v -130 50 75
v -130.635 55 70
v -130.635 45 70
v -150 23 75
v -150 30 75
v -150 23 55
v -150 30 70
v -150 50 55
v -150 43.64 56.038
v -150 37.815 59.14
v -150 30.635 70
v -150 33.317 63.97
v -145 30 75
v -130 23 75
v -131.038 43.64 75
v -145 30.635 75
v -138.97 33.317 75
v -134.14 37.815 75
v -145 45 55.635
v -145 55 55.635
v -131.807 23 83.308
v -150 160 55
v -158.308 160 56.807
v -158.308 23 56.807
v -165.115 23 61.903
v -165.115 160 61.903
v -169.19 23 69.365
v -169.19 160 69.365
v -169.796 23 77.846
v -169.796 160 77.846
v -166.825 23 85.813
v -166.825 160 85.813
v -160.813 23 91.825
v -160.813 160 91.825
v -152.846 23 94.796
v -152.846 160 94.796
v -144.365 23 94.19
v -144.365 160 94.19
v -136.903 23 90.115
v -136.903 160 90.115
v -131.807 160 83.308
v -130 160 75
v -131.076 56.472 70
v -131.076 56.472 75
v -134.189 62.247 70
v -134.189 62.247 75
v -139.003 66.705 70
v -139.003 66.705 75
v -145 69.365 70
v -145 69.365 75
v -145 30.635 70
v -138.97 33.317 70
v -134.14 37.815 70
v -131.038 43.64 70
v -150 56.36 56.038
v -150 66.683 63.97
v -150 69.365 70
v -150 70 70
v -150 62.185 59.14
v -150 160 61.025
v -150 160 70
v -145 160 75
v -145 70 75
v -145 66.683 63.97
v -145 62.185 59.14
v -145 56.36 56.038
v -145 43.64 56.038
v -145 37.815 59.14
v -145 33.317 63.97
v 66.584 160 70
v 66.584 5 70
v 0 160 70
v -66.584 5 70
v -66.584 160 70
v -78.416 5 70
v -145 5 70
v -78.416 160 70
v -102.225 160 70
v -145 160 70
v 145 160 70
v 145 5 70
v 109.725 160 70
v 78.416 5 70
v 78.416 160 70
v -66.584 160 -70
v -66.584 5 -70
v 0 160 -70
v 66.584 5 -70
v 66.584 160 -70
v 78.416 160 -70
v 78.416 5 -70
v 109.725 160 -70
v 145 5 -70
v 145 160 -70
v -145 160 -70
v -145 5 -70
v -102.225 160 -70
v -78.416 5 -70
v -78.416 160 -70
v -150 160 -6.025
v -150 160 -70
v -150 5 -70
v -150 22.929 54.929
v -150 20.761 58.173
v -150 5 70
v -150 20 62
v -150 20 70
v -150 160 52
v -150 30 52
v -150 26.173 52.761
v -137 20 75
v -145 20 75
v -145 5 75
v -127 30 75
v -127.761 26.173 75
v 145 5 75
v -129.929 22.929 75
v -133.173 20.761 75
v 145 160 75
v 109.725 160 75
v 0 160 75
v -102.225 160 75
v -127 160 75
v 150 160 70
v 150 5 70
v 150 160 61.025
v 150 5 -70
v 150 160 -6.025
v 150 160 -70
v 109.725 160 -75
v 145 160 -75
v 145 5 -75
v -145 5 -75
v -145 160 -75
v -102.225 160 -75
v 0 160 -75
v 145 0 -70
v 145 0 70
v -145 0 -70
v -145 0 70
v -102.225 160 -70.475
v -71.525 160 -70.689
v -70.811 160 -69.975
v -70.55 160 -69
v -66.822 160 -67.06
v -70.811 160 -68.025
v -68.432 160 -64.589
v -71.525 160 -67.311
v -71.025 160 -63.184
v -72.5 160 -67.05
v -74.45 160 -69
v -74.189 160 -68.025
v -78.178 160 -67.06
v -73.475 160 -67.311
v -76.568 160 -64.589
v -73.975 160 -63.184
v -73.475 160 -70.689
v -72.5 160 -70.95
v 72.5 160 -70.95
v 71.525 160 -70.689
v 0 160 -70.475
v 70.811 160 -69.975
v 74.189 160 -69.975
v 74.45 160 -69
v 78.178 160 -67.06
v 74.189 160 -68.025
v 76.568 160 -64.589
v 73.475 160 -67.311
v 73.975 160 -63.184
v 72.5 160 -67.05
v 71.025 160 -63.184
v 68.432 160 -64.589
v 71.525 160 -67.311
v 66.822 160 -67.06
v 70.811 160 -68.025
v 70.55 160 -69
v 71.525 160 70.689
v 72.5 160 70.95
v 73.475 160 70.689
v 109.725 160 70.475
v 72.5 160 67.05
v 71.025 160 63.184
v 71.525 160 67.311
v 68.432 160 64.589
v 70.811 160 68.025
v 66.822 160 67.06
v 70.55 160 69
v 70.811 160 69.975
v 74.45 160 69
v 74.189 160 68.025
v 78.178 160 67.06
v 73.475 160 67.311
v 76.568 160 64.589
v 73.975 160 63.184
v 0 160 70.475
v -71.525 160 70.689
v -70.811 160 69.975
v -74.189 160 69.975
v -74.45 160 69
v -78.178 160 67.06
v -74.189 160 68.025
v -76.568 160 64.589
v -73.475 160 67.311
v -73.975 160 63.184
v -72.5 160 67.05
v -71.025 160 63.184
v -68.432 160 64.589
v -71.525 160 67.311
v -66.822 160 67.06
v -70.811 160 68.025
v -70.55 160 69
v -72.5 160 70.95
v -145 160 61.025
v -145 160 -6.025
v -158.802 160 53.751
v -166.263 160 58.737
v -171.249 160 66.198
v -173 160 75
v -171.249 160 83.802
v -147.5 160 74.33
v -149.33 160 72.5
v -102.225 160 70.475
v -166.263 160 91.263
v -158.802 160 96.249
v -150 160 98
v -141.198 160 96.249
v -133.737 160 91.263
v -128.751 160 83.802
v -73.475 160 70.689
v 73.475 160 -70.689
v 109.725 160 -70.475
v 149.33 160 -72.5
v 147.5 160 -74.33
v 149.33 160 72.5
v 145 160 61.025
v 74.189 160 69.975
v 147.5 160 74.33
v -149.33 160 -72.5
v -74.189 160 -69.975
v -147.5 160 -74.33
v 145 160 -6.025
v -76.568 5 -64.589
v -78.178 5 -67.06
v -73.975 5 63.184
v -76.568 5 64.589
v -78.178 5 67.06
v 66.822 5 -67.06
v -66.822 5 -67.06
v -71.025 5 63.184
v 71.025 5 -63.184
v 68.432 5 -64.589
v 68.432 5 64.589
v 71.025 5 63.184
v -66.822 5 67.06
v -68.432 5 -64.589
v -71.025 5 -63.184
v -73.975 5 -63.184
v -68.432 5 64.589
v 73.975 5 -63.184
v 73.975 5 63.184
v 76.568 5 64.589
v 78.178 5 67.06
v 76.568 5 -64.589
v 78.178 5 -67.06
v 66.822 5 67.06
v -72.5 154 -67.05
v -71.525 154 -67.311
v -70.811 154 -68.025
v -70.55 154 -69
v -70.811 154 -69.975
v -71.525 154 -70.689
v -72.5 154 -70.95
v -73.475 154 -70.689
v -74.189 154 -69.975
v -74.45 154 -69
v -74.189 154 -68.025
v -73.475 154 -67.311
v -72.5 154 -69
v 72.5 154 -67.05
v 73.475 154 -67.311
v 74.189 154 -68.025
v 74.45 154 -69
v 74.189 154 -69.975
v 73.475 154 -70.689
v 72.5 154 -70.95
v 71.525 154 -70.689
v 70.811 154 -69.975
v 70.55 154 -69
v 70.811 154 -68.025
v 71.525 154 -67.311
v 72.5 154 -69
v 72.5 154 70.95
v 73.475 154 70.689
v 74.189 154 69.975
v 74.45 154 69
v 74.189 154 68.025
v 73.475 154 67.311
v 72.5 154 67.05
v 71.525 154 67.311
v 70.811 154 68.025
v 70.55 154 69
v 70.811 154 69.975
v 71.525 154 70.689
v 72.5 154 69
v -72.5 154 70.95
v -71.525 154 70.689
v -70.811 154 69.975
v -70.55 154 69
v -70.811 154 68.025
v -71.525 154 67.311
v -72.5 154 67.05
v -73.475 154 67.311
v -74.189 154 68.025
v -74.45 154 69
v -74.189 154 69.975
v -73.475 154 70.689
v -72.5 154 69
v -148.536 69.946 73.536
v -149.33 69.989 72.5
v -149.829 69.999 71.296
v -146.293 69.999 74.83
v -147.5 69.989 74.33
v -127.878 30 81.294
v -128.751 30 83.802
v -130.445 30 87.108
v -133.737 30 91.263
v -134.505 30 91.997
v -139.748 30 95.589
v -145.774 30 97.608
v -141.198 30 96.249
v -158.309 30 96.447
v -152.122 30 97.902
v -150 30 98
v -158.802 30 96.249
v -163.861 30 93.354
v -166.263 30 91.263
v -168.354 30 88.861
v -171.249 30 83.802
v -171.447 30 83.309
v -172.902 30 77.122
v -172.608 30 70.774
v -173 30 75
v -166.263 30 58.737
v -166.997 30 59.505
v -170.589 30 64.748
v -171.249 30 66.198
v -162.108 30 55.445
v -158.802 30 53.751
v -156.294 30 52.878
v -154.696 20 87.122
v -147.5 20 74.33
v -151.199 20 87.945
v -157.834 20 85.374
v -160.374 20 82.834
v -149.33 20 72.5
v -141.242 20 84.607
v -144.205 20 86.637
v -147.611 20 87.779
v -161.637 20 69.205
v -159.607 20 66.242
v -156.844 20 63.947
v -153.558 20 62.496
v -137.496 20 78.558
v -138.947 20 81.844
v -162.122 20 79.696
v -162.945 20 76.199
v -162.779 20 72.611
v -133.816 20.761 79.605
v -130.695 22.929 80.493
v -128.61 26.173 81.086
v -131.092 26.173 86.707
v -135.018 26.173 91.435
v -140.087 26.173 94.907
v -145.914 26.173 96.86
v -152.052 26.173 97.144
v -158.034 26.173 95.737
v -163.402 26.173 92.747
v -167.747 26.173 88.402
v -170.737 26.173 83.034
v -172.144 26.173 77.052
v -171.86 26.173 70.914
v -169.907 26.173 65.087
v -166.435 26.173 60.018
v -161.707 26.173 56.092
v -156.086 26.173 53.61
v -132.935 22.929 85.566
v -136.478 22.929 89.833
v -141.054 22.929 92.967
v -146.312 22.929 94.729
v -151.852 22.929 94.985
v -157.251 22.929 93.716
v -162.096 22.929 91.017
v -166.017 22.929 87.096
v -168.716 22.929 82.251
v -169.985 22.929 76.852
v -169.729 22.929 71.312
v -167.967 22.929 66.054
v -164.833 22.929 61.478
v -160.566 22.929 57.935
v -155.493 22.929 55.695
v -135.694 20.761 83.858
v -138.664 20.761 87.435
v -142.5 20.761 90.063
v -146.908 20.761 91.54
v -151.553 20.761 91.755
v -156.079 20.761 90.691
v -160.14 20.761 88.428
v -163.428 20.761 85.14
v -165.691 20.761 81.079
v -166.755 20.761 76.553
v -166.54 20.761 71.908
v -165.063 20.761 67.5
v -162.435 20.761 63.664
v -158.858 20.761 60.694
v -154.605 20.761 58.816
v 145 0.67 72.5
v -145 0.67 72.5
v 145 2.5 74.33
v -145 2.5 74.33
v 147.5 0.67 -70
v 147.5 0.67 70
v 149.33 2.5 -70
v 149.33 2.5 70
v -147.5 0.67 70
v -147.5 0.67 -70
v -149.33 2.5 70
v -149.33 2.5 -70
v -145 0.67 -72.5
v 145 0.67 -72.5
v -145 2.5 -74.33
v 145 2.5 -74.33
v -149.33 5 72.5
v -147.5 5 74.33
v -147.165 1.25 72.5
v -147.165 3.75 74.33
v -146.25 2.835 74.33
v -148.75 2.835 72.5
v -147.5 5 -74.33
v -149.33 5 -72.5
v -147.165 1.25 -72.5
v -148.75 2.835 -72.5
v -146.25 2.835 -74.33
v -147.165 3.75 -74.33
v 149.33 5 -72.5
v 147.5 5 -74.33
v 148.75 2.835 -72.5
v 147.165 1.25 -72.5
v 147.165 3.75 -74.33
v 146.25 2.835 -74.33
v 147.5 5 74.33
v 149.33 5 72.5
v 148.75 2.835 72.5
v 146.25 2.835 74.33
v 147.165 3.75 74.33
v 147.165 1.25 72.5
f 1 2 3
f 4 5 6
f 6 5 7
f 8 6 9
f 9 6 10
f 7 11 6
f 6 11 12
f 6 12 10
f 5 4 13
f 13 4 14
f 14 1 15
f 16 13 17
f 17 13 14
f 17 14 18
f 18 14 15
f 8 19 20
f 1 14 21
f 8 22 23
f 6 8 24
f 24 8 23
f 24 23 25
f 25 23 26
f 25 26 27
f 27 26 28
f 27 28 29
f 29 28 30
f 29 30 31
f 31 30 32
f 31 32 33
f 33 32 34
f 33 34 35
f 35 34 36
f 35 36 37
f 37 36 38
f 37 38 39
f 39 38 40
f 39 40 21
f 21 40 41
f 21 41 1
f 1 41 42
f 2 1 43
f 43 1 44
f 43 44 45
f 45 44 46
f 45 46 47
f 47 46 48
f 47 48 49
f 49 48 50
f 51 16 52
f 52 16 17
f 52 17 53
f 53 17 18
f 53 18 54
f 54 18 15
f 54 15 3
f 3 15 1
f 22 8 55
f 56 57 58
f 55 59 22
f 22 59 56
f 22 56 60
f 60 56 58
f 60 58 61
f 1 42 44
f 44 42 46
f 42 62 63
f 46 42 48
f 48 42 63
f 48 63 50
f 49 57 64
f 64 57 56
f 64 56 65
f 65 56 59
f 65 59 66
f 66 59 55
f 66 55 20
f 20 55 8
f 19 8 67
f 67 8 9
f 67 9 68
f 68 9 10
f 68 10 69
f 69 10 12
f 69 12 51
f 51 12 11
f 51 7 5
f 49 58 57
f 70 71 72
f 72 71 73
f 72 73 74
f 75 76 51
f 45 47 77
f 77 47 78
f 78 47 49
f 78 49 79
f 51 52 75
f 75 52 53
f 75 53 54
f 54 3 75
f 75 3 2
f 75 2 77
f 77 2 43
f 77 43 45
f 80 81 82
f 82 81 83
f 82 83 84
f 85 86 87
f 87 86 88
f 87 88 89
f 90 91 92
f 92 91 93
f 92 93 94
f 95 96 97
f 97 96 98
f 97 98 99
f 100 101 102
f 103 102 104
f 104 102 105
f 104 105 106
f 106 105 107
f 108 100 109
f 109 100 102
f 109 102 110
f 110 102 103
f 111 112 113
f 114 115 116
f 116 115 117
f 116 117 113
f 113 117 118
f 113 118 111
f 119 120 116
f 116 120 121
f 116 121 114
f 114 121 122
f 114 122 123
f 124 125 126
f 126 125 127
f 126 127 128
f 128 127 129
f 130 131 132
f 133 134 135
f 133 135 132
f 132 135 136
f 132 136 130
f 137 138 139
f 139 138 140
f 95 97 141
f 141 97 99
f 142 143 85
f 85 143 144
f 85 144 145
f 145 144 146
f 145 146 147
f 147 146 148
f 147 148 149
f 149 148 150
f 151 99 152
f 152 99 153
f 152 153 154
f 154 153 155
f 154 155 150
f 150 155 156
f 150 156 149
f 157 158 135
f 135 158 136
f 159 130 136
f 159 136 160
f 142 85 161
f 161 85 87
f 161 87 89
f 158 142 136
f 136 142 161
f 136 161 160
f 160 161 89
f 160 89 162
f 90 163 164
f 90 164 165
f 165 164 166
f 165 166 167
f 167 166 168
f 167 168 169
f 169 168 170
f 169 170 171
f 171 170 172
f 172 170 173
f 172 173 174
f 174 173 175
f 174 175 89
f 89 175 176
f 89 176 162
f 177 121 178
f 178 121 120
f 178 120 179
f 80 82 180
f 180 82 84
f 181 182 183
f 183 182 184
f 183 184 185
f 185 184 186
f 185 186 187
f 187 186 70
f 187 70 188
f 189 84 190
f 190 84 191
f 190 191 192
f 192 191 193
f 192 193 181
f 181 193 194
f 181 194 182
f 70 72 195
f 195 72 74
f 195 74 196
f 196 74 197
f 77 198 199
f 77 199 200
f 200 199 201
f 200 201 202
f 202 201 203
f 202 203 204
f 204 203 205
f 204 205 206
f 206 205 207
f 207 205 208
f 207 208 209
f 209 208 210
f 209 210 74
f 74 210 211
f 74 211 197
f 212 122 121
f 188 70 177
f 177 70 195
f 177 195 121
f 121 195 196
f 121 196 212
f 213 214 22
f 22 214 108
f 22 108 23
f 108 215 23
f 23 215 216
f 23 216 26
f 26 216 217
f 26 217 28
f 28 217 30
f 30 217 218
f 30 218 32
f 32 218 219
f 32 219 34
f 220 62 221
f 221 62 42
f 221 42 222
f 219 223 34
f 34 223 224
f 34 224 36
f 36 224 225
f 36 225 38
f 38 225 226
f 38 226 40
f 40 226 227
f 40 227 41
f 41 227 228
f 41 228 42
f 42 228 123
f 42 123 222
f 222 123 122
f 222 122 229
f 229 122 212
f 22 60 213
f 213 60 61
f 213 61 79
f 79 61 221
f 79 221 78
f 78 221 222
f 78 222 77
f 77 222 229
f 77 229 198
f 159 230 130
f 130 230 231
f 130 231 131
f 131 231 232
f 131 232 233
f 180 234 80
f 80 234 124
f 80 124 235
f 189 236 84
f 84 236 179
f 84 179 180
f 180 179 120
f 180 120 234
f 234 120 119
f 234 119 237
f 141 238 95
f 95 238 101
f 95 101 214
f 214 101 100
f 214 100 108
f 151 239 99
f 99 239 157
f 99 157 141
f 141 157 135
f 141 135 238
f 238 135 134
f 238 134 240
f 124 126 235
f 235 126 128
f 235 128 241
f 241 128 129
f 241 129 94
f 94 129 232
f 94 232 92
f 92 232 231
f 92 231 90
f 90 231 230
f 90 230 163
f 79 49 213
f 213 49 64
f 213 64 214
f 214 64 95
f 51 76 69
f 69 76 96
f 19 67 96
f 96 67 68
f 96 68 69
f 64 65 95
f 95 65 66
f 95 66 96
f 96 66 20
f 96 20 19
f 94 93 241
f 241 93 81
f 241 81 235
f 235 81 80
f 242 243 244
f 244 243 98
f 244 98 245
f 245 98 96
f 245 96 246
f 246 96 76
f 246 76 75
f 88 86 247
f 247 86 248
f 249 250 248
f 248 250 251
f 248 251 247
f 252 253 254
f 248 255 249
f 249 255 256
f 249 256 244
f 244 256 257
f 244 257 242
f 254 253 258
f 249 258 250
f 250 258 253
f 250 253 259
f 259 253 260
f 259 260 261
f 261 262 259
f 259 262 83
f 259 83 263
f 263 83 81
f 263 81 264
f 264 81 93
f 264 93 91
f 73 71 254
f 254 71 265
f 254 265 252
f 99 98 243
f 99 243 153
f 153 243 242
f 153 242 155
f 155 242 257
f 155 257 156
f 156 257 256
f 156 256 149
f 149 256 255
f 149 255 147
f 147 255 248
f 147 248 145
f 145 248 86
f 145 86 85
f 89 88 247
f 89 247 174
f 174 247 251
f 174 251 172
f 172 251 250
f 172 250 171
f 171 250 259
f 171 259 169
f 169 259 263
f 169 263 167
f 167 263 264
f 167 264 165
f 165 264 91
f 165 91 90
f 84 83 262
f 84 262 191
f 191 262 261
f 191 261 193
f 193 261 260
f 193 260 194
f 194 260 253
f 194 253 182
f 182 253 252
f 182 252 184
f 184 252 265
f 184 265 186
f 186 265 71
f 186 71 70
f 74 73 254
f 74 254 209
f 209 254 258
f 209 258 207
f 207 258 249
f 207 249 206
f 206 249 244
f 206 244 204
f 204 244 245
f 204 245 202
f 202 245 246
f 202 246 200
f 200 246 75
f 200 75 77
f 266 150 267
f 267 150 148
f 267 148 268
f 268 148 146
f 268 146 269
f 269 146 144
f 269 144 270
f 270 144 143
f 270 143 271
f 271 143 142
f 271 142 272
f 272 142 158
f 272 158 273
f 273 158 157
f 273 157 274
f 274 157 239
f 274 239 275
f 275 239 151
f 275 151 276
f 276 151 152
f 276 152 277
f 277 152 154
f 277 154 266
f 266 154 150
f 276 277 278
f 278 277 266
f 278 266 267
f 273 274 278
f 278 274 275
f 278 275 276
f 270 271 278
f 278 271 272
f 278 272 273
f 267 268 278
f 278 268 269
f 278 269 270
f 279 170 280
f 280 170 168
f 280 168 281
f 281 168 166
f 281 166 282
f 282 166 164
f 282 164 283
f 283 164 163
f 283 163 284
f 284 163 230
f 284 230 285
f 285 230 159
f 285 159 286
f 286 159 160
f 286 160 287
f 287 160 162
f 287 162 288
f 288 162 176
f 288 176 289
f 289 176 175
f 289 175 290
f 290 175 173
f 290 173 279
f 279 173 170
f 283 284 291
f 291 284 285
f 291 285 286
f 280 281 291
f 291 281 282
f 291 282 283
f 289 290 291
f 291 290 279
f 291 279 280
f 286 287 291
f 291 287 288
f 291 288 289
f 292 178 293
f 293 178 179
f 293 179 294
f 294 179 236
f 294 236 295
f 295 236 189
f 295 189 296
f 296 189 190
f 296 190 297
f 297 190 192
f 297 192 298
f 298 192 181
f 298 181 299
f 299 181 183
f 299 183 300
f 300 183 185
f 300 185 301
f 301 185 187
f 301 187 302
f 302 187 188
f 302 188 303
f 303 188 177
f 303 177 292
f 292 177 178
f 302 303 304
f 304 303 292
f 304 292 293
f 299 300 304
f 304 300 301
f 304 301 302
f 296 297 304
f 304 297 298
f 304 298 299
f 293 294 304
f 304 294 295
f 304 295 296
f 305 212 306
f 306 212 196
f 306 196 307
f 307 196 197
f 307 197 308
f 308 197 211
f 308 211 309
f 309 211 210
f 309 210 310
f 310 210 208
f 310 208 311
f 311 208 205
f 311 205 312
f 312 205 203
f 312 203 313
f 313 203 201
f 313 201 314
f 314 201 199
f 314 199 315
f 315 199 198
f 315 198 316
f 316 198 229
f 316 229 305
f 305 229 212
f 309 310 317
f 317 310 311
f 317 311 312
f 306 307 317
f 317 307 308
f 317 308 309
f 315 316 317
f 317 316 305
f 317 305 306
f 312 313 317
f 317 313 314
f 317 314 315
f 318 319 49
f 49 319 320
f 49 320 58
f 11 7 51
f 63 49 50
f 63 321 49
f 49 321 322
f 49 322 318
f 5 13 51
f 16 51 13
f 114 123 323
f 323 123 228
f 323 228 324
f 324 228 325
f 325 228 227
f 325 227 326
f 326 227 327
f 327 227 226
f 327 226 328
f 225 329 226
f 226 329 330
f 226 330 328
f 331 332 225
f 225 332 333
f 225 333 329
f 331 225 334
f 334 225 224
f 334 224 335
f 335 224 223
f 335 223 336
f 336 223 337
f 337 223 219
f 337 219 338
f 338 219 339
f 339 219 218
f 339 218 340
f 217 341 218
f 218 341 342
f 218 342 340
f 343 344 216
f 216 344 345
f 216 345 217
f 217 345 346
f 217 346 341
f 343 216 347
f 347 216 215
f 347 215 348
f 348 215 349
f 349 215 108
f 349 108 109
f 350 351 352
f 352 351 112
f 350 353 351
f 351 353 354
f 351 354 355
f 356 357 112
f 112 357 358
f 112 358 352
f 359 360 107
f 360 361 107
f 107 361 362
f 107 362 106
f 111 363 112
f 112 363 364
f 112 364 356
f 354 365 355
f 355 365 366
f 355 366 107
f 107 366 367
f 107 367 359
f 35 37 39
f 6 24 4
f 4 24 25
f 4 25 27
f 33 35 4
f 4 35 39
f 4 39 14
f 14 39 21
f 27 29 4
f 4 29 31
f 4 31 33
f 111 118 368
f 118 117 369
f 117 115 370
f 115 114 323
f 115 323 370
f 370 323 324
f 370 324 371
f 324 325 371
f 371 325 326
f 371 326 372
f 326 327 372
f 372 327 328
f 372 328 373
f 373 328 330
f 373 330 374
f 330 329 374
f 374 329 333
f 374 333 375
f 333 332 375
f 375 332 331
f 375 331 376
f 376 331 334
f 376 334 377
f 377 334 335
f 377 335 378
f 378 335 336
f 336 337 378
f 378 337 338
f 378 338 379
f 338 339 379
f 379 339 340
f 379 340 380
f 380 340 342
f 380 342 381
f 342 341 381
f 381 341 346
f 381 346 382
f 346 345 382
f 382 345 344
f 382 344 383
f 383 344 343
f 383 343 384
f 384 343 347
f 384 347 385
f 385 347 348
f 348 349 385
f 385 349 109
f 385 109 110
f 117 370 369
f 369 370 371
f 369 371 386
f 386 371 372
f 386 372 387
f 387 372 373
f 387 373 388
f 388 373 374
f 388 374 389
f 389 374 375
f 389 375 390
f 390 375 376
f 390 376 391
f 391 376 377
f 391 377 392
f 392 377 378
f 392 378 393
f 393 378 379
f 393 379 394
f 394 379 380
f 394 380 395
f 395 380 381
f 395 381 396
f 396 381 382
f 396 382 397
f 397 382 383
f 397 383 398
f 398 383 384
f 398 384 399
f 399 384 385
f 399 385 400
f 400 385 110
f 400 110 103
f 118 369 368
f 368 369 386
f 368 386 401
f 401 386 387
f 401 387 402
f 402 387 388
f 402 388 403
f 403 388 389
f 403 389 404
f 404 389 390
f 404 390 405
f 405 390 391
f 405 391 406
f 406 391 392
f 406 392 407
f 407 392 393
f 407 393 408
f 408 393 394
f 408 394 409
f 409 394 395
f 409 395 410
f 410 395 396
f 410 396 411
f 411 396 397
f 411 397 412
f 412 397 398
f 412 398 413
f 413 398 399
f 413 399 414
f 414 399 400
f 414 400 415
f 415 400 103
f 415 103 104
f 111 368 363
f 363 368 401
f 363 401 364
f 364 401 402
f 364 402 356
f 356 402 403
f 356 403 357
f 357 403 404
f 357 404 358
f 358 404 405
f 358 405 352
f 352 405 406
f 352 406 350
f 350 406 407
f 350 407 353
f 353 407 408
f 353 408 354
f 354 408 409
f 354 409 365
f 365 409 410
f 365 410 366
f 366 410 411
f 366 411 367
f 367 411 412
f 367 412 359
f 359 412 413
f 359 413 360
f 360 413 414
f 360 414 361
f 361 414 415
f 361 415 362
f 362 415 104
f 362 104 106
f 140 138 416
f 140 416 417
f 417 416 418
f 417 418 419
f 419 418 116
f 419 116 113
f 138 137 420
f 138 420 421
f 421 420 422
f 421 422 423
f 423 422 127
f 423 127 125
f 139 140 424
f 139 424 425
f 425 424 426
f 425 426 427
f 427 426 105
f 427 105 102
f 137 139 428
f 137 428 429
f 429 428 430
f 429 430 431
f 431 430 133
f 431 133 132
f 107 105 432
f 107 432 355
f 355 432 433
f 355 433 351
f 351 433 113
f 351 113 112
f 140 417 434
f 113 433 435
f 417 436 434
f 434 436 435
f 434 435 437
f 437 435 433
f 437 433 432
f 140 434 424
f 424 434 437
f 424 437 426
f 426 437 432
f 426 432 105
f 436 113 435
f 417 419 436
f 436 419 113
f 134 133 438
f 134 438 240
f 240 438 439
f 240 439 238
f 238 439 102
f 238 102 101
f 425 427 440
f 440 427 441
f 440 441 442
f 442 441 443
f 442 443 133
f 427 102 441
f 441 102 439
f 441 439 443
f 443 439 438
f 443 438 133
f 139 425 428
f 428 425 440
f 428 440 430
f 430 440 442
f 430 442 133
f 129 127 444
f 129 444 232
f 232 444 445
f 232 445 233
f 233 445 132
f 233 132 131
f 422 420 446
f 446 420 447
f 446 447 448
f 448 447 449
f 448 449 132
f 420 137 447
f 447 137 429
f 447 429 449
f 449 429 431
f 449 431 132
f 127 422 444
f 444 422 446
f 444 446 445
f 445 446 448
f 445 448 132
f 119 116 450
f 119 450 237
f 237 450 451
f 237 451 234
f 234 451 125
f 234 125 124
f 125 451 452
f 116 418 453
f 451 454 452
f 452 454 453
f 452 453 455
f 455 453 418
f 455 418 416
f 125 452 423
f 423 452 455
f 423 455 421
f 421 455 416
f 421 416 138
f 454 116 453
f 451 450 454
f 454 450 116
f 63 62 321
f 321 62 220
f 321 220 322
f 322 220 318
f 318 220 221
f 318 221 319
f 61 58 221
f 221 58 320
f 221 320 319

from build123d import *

# Parameters (mm, degrees)
ESQUISSE1_W             = 300
ESQUISSE1_H             = 150
BOSS_EXTRU_1_DEPTH      = 5
ESQUISSE3_W             = 300
ESQUISSE3_H             = 150
ESQUISSE3_W_2           = 290
ESQUISSE3_H_2           = 140
BOSS_EXTRU_2_DEPTH      = 155
ESQUISSE4_R             = 6
BOSS_EXTRU_4_DEPTH      = 155
ESQUISSE5_R             = 1.95
ENL_V_MAT_EXTRU_1_DEPTH = 6
ESQUISSE6_R             = 20
ENL_V_MAT_EXTRU_2_DEPTH = 5
ESQUISSE7_R             = 20
ENL_V_MAT_EXTRU_3_DEPTH = 5
ESQUISSE8_R             = 23
ESQUISSE8_R_2           = 20
BOSS_EXTRU_5_DEPTH      = 140
BOSS_EXTRU_6_START      = -3
ESQUISSE9_R             = 20
BOSS_EXTRU_6_DEPTH      = 3
BOSS_EXTRU_7_DEPTH      = 3
CONG_1_R                = 10
CONG_2_R                = 5
CONG_3_R                = 5
ESQUISSE12_W            = 17.449944321
ESQUISSE12_H            = 17.449944321
ENL_V_MAT_EXTRU_5_DEPTH = 152


# Some blends are built 0.0001 mm under size
with BuildPart() as part:
    # Esquisse1 → Boss.-Extru.1 (new body)
    with BuildSketch(Plane(origin=(0, 0, 0), x_dir=(1, 0, 0), z_dir=(0, 1, 0))):
        Rectangle(ESQUISSE1_W, ESQUISSE1_H)
    extrude(amount=BOSS_EXTRU_1_DEPTH)

    # Esquisse3 → Boss.-Extru.2 (add)
    with BuildSketch(Plane(origin=(0, 5, 0), x_dir=(1, 0, 0), z_dir=(0, 1, 0))):
        Rectangle(ESQUISSE3_W, ESQUISSE3_H)
        Rectangle(ESQUISSE3_W_2, ESQUISSE3_H_2, mode=Mode.SUBTRACT)
    extrude(amount=BOSS_EXTRU_2_DEPTH)

    # Esquisse4 → Boss.-Extru.4 (add)
    with BuildSketch(Plane(origin=(0, 5, 0), x_dir=(1, 0, 0), z_dir=(0, 1, 0))):
        with Locations((-72.5, 69)):
            Circle(ESQUISSE4_R)
        with Locations((72.5, 69)):
            Circle(ESQUISSE4_R)
        with Locations((72.5, -69)):
            Circle(ESQUISSE4_R)
        with Locations((-72.5, -69)):
            Circle(ESQUISSE4_R)
    extrude(amount=BOSS_EXTRU_4_DEPTH)

    # Esquisse5 → Enlèv. mat.-Extru.1 (cut)
    with BuildSketch(Plane(origin=(0, 160, 0), x_dir=(1, 0, 0), z_dir=(0, 1, 0))):
        with Locations(Location((-72.5, 69, 0), (0, 0, 270))):
            Circle(ESQUISSE5_R)
        with Locations(Location((72.5, 69, 0), (0, 0, 90))):
            Circle(ESQUISSE5_R)
        with Locations(Location((72.5, -69, 0), (0, 0, 270))):
            Circle(ESQUISSE5_R)
        with Locations(Location((-72.5, -69, 0), (0, 0, 90))):
            Circle(ESQUISSE5_R)
    extrude(amount=-ENL_V_MAT_EXTRU_1_DEPTH, mode=Mode.SUBTRACT)

    # Esquisse6 → Enlèv. mat.-Extru.2 (cut)
    with BuildSketch(Plane.XY.offset(75)):
        with Locations((-150, 50)):
            Circle(ESQUISSE6_R)
    extrude(amount=-ENL_V_MAT_EXTRU_2_DEPTH, mode=Mode.SUBTRACT)

    # Esquisse7 → Enlèv. mat.-Extru.3 (cut)
    with BuildSketch(Plane.ZY.offset(150)):
        with Locations((75, 50)):
            Circle(ESQUISSE7_R)
    extrude(amount=-ENL_V_MAT_EXTRU_3_DEPTH, mode=Mode.SUBTRACT)

    # Esquisse8 → Boss.-Extru.5 (add)
    with BuildSketch(Plane(origin=(0, 160, 0), x_dir=(1, 0, 0), z_dir=(0, 1, 0))):
        with Locations((-150, -75)):
            Circle(ESQUISSE8_R)
        with Locations((-150, -75)):
            Circle(ESQUISSE8_R_2, mode=Mode.SUBTRACT)
    extrude(amount=-BOSS_EXTRU_5_DEPTH)

    # Esquisse9 → Boss.-Extru.6 (add)
    with BuildSketch(Plane.XZ.offset(-20).offset(BOSS_EXTRU_6_START)):
        with Locations((-150, 75)):
            Circle(ESQUISSE9_R)
    extrude(amount=BOSS_EXTRU_6_DEPTH)

    # Esquisse10 → Boss.-Extru.7 (add)
    with BuildSketch(Plane(origin=(0, 160, 0), x_dir=(1, 0, 0), z_dir=(0, 1, 0))):
        with BuildLine():
            Line((-150, -52), (-150, -75))
            Line((-150, -75), (-127, -75))
            ThreePointArc((-127, -75), (-133.736544033, -58.736544033), (-150, -52))
        make_face()
    extrude(amount=-BOSS_EXTRU_7_DEPTH)

    # Congé1
    cong_1_edges = [part.edges().sort_by_distance(p)[0] for p in [
        (-166.263455967, 20, 91.263455967),
    ]]
    fillet(cong_1_edges, radius=CONG_1_R)

    # Congé2
    cong_2_edges = [part.edges().sort_by_distance(p)[0] for p in [
        (0, 0, -75),
        (150, 0, 0),
        (0, 0, 75),
        (-150, 0, 0),
    ]]
    fillet(cong_2_edges, radius=CONG_2_R - 0.0001)  # a hair under: the kernel refuses the full size

    # Congé3
    # the kernel refuses this fillet: 5 mm, written as the material it takes off along each edge
    with BuildSketch(Plane(origin=(-145, 0, 70), x_dir=(0, 0, 1), z_dir=(1, 0, 0))) as cong_3_piece_1:
        with BuildLine():
            CenterArc((0.0001, -4.9999), 4.9999, 0, 90)
            Line((5, -4.9999), (5, 0))
            Line((5, 0), (0.0001, 0))
        make_face()
    revolve(axis=Axis((-145, 0, 70), (0, -1, 0)), revolution_arc=90, mode=Mode.SUBTRACT)
    with BuildSketch(Plane(origin=(-145, 0, -70), x_dir=(-1, 0, 0), z_dir=(0, 0, 1))) as cong_3_piece_2:
        with BuildLine():
            CenterArc((0.0001, -4.9999), 4.9999, 0, 90)
            Line((5, -4.9999), (5, 0))
            Line((5, 0), (0.0001, 0))
        make_face()
    revolve(axis=Axis((-145, 0, -70), (0, -1, 0)), revolution_arc=90, mode=Mode.SUBTRACT)
    with BuildSketch(Plane(origin=(145, 0, -70), x_dir=(0, 0, -1), z_dir=(-1, 0, 0))) as cong_3_piece_3:
        with BuildLine():
            CenterArc((0.0001, -4.9999), 4.9999, 0, 90)
            Line((5, -4.9999), (5, 0))
            Line((5, 0), (0.0001, 0))
        make_face()
    revolve(axis=Axis((145, 0, -70), (0, -1, 0)), revolution_arc=90, mode=Mode.SUBTRACT)
    with BuildSketch(Plane(origin=(145, 0, 70), x_dir=(1, 0, 0), z_dir=(0, 0, -1))) as cong_3_piece_4:
        with BuildLine():
            CenterArc((0.0001, -4.9999), 4.9999, 0, 90)
            Line((5, -4.9999), (5, 0))
            Line((5, 0), (0.0001, 0))
        make_face()
    revolve(axis=Axis((145, 0, 70), (0, -1, 0)), revolution_arc=90, mode=Mode.SUBTRACT)
    with BuildSketch(Plane(origin=(-150, 20, 75), x_dir=(1, 0, 0), z_dir=(0, -1, 0))) as cong_3_piece_5:
        with BuildLine():
            CenterArc((CONG_3_R, -CONG_3_R), CONG_3_R, 90, 90)
            Line((0, -CONG_3_R), (0, 0))
            Line((0, 0), (CONG_3_R, 0))
        make_face()
    extrude(amount=20, mode=Mode.SUBTRACT)
    with BuildSketch(Plane(origin=(-150, 172.5, 75), x_dir=(1, 0, 0), z_dir=(0, -1, 0))) as cong_3_piece_6:
        with BuildLine():
            CenterArc((CONG_3_R, -CONG_3_R), CONG_3_R, 90, 90)
            Line((0, -CONG_3_R), (0, 0))
            Line((0, 0), (CONG_3_R, 0))
        make_face()
    extrude(amount=115, mode=Mode.SUBTRACT)
    with BuildSketch(Plane(origin=(-150, 172.5, -75), x_dir=(0, 0, 1), z_dir=(0, -1, 0)), Plane(origin=(150, 0, -75), x_dir=(0, 0, 1), z_dir=(0, 1, 0)), Plane(origin=(150, 0, 75), x_dir=(-1, 0, 0), z_dir=(0, 1, 0))) as cong_3_piece_7:
        with BuildLine():
            CenterArc((CONG_3_R, -CONG_3_R), CONG_3_R, 90, 90)
            Line((0, -CONG_3_R), (0, 0))
            Line((0, 0), (CONG_3_R, 0))
        make_face()
    extrude(amount=172.5, mode=Mode.SUBTRACT)

    # Esquisse12 → Enlèv. mat.-Extru.5 (cut)
    with BuildSketch(Plane(origin=(0, 160, 0), x_dir=(1, 0, 0), z_dir=(0, 1, 0))):
        with Locations((-136.27502784, -61.275027839)):
            Rectangle(ESQUISSE12_W, ESQUISSE12_H)
    extrude(amount=-ENL_V_MAT_EXTRU_5_DEPTH, mode=Mode.SUBTRACT)


solid = part.part
